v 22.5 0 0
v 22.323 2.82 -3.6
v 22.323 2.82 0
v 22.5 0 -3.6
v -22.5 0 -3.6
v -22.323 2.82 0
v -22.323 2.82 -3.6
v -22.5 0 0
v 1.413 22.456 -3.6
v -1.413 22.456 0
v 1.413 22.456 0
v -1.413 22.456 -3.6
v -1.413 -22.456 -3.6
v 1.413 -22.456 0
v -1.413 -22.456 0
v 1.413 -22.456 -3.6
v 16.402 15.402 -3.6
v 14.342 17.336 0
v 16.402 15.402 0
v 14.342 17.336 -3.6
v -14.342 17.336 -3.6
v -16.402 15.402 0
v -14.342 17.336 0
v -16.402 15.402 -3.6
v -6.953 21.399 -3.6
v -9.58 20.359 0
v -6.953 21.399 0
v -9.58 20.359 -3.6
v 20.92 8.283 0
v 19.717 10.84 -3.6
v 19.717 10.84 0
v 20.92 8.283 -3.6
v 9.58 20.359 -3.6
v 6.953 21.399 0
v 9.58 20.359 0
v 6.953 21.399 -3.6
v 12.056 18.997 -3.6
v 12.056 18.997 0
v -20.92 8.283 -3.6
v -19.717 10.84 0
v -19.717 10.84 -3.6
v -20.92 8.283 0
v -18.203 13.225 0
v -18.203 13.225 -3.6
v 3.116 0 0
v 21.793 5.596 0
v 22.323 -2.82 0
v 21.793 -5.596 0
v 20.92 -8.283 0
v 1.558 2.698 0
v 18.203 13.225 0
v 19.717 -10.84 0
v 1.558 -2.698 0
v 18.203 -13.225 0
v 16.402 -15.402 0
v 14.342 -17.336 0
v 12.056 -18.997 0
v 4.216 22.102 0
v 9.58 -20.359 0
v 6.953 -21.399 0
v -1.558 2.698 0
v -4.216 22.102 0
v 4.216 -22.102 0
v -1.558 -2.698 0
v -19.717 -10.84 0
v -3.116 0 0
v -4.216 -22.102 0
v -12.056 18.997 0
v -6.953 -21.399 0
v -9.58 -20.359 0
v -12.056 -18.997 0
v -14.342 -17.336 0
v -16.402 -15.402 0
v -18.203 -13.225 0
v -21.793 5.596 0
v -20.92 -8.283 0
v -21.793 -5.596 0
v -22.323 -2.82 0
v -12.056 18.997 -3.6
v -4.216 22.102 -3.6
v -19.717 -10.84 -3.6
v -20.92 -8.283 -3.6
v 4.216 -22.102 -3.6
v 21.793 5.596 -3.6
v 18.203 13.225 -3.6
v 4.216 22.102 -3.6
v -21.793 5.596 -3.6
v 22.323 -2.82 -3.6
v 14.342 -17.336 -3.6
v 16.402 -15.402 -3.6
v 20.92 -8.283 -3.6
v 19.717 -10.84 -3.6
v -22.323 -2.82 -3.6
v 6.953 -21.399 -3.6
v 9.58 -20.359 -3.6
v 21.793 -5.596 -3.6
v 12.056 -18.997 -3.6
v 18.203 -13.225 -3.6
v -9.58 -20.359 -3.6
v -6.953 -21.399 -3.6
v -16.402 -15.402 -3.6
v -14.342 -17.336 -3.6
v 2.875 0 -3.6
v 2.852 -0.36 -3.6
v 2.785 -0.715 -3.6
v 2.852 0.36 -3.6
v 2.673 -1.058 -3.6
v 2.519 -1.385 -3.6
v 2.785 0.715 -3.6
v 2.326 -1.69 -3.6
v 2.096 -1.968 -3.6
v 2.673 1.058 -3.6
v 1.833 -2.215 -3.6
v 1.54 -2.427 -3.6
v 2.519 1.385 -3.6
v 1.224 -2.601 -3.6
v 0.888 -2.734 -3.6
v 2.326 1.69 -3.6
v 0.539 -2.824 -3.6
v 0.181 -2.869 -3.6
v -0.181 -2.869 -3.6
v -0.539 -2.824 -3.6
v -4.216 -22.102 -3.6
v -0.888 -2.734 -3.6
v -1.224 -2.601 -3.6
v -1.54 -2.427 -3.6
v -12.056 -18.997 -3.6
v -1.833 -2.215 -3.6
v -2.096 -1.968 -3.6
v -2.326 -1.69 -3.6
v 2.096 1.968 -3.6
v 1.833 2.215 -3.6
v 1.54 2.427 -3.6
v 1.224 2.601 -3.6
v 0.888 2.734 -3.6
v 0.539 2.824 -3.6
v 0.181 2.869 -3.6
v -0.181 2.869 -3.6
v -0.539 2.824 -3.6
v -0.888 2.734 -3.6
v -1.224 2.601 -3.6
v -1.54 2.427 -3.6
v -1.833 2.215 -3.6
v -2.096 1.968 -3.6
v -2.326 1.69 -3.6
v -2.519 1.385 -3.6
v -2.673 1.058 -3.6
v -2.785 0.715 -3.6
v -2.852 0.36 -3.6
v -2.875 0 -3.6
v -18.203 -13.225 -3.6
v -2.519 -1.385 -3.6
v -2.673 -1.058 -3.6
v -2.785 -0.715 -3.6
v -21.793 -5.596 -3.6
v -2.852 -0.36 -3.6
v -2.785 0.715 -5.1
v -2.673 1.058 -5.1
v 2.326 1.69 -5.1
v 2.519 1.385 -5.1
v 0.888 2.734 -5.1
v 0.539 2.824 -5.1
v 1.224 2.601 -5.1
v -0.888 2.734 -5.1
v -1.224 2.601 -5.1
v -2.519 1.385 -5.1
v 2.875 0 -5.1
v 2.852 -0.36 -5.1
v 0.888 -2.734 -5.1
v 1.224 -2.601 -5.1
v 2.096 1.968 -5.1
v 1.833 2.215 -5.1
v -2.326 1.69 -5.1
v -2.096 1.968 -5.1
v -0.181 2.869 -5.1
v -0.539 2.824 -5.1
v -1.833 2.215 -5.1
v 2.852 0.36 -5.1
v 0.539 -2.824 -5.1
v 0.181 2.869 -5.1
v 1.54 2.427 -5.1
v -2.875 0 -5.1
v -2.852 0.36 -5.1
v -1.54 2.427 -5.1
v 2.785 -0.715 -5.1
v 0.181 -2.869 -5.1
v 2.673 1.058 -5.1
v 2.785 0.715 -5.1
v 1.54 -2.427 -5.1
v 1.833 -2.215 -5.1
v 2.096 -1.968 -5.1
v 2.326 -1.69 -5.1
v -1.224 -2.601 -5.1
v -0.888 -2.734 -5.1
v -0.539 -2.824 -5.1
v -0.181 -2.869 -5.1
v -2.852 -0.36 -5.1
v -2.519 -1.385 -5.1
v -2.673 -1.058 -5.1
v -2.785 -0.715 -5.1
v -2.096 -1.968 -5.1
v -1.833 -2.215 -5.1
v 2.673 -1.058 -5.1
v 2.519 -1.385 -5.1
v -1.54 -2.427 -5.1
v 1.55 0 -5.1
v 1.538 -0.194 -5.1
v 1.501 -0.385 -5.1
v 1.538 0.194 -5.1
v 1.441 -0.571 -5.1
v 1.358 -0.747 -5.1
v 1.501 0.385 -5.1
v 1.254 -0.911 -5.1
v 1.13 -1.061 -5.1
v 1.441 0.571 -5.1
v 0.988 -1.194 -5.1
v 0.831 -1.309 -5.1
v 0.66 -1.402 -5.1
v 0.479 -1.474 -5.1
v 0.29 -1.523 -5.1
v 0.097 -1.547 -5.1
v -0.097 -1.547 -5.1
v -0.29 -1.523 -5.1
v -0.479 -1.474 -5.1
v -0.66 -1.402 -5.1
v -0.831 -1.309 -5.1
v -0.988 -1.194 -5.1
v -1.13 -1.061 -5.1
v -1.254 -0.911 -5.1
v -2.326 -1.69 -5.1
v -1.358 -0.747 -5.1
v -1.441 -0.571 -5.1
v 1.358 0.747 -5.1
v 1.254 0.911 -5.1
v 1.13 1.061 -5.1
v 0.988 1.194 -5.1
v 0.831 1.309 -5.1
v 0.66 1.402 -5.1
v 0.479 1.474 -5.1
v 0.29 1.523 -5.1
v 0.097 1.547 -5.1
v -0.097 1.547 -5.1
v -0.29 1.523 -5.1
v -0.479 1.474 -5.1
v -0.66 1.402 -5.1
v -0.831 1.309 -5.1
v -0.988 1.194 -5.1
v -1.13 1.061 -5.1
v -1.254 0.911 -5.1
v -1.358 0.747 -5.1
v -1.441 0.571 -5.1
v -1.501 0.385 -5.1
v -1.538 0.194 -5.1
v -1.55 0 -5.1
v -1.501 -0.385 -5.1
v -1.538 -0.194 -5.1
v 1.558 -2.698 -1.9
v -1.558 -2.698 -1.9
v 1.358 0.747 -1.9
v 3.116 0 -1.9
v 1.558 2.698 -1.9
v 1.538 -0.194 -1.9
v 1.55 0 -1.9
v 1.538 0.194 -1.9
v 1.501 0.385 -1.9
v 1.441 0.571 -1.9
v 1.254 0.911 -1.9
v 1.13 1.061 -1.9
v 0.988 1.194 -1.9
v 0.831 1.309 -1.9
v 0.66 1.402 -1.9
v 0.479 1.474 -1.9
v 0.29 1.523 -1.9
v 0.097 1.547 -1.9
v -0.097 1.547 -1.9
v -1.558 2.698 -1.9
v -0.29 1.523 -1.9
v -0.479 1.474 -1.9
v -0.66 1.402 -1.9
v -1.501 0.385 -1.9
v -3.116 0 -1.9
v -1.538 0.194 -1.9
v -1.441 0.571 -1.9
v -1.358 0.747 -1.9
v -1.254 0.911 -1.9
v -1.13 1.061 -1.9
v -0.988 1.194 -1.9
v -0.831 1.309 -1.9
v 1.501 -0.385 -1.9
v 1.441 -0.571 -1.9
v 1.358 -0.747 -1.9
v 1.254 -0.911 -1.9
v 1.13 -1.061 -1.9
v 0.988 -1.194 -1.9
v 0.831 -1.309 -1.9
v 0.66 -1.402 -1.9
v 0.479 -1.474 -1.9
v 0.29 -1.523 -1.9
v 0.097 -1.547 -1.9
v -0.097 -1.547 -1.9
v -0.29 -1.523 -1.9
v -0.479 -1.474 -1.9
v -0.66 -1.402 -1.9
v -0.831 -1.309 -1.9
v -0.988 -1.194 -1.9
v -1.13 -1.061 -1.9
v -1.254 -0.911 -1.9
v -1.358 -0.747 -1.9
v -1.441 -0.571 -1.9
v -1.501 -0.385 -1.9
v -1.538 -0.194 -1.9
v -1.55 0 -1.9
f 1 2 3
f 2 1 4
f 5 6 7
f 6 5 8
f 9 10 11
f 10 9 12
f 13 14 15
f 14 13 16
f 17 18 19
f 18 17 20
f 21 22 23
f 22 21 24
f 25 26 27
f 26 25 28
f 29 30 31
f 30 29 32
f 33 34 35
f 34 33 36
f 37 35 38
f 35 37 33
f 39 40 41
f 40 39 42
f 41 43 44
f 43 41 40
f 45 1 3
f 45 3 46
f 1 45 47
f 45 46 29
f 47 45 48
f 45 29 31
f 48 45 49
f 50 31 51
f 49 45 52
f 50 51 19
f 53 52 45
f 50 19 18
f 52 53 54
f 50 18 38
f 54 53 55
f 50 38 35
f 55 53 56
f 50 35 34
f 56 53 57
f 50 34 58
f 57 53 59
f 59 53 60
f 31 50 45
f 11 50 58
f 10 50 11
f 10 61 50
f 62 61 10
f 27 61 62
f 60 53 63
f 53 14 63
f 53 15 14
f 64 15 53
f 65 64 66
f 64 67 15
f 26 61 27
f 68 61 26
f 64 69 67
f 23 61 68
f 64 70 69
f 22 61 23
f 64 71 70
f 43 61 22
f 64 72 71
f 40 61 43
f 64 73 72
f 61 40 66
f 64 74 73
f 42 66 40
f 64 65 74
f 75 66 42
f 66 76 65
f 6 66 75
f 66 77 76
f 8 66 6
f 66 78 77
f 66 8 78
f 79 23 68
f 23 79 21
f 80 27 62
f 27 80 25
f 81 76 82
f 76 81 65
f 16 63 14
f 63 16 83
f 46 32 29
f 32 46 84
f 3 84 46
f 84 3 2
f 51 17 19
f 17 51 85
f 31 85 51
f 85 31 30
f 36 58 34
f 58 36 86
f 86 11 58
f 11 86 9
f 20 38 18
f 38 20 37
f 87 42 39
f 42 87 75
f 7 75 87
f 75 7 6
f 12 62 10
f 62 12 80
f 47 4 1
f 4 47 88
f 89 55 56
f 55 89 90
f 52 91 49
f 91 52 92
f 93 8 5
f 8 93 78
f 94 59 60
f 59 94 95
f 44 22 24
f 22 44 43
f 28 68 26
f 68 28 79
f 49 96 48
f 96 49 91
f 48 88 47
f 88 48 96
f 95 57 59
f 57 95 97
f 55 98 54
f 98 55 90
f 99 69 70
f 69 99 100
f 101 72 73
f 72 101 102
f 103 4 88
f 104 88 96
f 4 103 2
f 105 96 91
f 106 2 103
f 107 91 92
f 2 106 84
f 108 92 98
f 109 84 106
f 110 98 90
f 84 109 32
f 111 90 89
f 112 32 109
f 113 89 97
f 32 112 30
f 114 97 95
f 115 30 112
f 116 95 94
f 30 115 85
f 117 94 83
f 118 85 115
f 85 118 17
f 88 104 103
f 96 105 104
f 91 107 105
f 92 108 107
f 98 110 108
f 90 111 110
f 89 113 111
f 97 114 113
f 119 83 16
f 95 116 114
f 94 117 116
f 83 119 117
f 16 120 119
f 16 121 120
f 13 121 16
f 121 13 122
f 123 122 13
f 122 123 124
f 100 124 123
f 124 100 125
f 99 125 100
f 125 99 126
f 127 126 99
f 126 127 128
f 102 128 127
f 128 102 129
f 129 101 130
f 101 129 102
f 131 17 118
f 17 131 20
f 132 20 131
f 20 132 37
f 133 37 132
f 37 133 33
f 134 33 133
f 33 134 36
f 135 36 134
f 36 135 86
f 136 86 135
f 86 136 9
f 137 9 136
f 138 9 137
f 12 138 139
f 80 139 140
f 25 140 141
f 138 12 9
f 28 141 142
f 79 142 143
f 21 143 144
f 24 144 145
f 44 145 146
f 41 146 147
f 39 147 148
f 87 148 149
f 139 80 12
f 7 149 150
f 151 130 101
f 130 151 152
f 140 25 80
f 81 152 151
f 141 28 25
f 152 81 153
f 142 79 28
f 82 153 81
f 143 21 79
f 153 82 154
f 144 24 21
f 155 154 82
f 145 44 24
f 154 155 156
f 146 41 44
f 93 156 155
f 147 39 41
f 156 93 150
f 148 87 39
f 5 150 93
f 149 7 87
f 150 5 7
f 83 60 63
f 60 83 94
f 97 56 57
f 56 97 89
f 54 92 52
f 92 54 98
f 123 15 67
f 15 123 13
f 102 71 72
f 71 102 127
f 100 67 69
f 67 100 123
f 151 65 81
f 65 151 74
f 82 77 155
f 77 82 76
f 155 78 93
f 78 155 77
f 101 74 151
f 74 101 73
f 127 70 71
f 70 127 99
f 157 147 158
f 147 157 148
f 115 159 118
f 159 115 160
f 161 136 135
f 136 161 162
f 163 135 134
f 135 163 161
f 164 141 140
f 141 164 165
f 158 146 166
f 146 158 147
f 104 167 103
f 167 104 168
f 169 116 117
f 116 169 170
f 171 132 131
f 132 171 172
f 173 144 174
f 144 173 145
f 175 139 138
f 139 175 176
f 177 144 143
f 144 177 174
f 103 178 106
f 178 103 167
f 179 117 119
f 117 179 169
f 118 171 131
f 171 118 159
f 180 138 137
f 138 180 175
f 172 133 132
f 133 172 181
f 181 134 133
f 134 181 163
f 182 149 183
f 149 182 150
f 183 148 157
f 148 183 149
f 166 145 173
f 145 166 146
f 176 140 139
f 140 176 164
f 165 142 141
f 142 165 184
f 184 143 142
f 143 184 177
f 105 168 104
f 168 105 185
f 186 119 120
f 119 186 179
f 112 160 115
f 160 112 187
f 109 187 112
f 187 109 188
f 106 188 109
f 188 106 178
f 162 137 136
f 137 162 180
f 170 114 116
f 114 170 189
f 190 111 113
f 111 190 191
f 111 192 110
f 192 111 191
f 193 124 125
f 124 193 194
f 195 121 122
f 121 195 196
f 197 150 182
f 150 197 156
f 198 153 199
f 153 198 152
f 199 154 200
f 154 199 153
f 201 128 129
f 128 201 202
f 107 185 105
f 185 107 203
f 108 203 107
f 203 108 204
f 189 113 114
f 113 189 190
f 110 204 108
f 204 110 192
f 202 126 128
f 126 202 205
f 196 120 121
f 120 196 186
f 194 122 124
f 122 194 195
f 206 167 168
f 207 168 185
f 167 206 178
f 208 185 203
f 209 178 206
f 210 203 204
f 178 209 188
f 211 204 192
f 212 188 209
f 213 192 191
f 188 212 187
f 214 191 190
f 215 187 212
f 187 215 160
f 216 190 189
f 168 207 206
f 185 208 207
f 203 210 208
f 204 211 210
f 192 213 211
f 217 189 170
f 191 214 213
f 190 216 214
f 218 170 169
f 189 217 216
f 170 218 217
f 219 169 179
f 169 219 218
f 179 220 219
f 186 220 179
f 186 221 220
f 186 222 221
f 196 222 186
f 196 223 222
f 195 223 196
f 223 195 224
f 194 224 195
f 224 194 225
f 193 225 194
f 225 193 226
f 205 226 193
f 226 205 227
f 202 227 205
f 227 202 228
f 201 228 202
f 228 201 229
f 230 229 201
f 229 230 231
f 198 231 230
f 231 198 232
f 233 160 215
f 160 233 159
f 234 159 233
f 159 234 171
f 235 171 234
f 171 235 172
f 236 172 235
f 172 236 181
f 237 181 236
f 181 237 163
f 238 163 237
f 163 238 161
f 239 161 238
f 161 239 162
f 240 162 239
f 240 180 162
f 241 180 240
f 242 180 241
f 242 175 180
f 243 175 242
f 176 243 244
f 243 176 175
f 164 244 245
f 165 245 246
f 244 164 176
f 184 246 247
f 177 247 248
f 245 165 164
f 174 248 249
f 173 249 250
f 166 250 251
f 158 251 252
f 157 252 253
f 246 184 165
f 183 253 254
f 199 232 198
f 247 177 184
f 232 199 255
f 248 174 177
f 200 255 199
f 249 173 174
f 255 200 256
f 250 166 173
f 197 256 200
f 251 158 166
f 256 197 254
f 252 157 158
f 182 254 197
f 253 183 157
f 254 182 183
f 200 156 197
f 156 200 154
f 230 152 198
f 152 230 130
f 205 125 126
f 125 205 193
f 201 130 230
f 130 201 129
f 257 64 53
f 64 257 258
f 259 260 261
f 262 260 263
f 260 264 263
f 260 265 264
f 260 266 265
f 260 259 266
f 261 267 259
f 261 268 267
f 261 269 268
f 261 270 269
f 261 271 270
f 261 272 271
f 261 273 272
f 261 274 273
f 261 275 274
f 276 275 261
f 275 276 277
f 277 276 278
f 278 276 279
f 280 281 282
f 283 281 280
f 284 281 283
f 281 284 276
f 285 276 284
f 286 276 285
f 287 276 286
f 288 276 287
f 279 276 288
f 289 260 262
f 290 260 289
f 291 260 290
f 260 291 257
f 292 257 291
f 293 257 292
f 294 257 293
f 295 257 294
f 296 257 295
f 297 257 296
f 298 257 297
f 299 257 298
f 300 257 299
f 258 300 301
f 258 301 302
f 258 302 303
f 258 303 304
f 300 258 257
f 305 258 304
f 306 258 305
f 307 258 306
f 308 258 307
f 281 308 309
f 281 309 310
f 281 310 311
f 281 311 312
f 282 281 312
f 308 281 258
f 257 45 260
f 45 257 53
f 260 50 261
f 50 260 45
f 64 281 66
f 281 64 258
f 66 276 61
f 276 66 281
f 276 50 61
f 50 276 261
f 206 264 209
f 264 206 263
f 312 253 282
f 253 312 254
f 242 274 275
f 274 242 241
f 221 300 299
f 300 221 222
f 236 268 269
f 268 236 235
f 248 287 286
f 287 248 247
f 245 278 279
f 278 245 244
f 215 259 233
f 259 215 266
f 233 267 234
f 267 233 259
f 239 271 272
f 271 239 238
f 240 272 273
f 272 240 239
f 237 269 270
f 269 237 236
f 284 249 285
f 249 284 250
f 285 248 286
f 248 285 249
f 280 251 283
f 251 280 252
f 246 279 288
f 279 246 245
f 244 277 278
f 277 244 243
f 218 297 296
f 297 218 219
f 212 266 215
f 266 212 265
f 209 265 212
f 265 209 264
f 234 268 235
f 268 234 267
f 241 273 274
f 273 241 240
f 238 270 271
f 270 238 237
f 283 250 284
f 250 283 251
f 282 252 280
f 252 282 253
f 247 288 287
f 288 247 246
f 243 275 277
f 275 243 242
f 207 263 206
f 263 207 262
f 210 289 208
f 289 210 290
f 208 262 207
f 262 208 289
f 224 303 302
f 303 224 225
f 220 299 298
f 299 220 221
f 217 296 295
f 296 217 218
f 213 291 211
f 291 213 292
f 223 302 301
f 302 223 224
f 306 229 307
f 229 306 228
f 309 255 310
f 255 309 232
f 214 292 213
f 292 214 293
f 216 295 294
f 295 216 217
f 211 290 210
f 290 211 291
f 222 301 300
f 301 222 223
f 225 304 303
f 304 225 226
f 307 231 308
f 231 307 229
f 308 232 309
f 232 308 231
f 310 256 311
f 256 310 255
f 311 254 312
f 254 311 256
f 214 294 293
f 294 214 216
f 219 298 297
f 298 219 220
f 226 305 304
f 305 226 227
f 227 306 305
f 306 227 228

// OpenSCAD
$fn = 50;


difference() {
	union() {
		translate(v = [0, 0, -3.6000000000]) {
			cylinder(h = 3.6000000000, r = 22.5000000000);
		}
		translate(v = [0, 0, -5.1000000000]) {
			cylinder(h = 5.1000000000, r = 2.8750000000);
		}
	}
	union() {
		translate(v = [0, 0, 0]) {
			rotate(a = [0, 0, 0]) {
				difference() {
					union() {
						translate(v = [0, 0, -1.9000000000]) {
							linear_extrude(height = 1.9000000000) {
								polygon(points = [[3.1158000000, 0.0000000000], [1.5579000000, 2.6983619531], [-1.5579000000, 2.6983619531], [-3.1158000000, 0.0000000000], [-1.5579000000, -2.6983619531], [1.5579000000, -2.6983619531]]);
							}
						}
					}
					union();
				}
			}
		}
		#translate(v = [0, 0, -100.0000000000]) {
			cylinder(h = 200, r = 1.5500000000);
		}
	}
}
